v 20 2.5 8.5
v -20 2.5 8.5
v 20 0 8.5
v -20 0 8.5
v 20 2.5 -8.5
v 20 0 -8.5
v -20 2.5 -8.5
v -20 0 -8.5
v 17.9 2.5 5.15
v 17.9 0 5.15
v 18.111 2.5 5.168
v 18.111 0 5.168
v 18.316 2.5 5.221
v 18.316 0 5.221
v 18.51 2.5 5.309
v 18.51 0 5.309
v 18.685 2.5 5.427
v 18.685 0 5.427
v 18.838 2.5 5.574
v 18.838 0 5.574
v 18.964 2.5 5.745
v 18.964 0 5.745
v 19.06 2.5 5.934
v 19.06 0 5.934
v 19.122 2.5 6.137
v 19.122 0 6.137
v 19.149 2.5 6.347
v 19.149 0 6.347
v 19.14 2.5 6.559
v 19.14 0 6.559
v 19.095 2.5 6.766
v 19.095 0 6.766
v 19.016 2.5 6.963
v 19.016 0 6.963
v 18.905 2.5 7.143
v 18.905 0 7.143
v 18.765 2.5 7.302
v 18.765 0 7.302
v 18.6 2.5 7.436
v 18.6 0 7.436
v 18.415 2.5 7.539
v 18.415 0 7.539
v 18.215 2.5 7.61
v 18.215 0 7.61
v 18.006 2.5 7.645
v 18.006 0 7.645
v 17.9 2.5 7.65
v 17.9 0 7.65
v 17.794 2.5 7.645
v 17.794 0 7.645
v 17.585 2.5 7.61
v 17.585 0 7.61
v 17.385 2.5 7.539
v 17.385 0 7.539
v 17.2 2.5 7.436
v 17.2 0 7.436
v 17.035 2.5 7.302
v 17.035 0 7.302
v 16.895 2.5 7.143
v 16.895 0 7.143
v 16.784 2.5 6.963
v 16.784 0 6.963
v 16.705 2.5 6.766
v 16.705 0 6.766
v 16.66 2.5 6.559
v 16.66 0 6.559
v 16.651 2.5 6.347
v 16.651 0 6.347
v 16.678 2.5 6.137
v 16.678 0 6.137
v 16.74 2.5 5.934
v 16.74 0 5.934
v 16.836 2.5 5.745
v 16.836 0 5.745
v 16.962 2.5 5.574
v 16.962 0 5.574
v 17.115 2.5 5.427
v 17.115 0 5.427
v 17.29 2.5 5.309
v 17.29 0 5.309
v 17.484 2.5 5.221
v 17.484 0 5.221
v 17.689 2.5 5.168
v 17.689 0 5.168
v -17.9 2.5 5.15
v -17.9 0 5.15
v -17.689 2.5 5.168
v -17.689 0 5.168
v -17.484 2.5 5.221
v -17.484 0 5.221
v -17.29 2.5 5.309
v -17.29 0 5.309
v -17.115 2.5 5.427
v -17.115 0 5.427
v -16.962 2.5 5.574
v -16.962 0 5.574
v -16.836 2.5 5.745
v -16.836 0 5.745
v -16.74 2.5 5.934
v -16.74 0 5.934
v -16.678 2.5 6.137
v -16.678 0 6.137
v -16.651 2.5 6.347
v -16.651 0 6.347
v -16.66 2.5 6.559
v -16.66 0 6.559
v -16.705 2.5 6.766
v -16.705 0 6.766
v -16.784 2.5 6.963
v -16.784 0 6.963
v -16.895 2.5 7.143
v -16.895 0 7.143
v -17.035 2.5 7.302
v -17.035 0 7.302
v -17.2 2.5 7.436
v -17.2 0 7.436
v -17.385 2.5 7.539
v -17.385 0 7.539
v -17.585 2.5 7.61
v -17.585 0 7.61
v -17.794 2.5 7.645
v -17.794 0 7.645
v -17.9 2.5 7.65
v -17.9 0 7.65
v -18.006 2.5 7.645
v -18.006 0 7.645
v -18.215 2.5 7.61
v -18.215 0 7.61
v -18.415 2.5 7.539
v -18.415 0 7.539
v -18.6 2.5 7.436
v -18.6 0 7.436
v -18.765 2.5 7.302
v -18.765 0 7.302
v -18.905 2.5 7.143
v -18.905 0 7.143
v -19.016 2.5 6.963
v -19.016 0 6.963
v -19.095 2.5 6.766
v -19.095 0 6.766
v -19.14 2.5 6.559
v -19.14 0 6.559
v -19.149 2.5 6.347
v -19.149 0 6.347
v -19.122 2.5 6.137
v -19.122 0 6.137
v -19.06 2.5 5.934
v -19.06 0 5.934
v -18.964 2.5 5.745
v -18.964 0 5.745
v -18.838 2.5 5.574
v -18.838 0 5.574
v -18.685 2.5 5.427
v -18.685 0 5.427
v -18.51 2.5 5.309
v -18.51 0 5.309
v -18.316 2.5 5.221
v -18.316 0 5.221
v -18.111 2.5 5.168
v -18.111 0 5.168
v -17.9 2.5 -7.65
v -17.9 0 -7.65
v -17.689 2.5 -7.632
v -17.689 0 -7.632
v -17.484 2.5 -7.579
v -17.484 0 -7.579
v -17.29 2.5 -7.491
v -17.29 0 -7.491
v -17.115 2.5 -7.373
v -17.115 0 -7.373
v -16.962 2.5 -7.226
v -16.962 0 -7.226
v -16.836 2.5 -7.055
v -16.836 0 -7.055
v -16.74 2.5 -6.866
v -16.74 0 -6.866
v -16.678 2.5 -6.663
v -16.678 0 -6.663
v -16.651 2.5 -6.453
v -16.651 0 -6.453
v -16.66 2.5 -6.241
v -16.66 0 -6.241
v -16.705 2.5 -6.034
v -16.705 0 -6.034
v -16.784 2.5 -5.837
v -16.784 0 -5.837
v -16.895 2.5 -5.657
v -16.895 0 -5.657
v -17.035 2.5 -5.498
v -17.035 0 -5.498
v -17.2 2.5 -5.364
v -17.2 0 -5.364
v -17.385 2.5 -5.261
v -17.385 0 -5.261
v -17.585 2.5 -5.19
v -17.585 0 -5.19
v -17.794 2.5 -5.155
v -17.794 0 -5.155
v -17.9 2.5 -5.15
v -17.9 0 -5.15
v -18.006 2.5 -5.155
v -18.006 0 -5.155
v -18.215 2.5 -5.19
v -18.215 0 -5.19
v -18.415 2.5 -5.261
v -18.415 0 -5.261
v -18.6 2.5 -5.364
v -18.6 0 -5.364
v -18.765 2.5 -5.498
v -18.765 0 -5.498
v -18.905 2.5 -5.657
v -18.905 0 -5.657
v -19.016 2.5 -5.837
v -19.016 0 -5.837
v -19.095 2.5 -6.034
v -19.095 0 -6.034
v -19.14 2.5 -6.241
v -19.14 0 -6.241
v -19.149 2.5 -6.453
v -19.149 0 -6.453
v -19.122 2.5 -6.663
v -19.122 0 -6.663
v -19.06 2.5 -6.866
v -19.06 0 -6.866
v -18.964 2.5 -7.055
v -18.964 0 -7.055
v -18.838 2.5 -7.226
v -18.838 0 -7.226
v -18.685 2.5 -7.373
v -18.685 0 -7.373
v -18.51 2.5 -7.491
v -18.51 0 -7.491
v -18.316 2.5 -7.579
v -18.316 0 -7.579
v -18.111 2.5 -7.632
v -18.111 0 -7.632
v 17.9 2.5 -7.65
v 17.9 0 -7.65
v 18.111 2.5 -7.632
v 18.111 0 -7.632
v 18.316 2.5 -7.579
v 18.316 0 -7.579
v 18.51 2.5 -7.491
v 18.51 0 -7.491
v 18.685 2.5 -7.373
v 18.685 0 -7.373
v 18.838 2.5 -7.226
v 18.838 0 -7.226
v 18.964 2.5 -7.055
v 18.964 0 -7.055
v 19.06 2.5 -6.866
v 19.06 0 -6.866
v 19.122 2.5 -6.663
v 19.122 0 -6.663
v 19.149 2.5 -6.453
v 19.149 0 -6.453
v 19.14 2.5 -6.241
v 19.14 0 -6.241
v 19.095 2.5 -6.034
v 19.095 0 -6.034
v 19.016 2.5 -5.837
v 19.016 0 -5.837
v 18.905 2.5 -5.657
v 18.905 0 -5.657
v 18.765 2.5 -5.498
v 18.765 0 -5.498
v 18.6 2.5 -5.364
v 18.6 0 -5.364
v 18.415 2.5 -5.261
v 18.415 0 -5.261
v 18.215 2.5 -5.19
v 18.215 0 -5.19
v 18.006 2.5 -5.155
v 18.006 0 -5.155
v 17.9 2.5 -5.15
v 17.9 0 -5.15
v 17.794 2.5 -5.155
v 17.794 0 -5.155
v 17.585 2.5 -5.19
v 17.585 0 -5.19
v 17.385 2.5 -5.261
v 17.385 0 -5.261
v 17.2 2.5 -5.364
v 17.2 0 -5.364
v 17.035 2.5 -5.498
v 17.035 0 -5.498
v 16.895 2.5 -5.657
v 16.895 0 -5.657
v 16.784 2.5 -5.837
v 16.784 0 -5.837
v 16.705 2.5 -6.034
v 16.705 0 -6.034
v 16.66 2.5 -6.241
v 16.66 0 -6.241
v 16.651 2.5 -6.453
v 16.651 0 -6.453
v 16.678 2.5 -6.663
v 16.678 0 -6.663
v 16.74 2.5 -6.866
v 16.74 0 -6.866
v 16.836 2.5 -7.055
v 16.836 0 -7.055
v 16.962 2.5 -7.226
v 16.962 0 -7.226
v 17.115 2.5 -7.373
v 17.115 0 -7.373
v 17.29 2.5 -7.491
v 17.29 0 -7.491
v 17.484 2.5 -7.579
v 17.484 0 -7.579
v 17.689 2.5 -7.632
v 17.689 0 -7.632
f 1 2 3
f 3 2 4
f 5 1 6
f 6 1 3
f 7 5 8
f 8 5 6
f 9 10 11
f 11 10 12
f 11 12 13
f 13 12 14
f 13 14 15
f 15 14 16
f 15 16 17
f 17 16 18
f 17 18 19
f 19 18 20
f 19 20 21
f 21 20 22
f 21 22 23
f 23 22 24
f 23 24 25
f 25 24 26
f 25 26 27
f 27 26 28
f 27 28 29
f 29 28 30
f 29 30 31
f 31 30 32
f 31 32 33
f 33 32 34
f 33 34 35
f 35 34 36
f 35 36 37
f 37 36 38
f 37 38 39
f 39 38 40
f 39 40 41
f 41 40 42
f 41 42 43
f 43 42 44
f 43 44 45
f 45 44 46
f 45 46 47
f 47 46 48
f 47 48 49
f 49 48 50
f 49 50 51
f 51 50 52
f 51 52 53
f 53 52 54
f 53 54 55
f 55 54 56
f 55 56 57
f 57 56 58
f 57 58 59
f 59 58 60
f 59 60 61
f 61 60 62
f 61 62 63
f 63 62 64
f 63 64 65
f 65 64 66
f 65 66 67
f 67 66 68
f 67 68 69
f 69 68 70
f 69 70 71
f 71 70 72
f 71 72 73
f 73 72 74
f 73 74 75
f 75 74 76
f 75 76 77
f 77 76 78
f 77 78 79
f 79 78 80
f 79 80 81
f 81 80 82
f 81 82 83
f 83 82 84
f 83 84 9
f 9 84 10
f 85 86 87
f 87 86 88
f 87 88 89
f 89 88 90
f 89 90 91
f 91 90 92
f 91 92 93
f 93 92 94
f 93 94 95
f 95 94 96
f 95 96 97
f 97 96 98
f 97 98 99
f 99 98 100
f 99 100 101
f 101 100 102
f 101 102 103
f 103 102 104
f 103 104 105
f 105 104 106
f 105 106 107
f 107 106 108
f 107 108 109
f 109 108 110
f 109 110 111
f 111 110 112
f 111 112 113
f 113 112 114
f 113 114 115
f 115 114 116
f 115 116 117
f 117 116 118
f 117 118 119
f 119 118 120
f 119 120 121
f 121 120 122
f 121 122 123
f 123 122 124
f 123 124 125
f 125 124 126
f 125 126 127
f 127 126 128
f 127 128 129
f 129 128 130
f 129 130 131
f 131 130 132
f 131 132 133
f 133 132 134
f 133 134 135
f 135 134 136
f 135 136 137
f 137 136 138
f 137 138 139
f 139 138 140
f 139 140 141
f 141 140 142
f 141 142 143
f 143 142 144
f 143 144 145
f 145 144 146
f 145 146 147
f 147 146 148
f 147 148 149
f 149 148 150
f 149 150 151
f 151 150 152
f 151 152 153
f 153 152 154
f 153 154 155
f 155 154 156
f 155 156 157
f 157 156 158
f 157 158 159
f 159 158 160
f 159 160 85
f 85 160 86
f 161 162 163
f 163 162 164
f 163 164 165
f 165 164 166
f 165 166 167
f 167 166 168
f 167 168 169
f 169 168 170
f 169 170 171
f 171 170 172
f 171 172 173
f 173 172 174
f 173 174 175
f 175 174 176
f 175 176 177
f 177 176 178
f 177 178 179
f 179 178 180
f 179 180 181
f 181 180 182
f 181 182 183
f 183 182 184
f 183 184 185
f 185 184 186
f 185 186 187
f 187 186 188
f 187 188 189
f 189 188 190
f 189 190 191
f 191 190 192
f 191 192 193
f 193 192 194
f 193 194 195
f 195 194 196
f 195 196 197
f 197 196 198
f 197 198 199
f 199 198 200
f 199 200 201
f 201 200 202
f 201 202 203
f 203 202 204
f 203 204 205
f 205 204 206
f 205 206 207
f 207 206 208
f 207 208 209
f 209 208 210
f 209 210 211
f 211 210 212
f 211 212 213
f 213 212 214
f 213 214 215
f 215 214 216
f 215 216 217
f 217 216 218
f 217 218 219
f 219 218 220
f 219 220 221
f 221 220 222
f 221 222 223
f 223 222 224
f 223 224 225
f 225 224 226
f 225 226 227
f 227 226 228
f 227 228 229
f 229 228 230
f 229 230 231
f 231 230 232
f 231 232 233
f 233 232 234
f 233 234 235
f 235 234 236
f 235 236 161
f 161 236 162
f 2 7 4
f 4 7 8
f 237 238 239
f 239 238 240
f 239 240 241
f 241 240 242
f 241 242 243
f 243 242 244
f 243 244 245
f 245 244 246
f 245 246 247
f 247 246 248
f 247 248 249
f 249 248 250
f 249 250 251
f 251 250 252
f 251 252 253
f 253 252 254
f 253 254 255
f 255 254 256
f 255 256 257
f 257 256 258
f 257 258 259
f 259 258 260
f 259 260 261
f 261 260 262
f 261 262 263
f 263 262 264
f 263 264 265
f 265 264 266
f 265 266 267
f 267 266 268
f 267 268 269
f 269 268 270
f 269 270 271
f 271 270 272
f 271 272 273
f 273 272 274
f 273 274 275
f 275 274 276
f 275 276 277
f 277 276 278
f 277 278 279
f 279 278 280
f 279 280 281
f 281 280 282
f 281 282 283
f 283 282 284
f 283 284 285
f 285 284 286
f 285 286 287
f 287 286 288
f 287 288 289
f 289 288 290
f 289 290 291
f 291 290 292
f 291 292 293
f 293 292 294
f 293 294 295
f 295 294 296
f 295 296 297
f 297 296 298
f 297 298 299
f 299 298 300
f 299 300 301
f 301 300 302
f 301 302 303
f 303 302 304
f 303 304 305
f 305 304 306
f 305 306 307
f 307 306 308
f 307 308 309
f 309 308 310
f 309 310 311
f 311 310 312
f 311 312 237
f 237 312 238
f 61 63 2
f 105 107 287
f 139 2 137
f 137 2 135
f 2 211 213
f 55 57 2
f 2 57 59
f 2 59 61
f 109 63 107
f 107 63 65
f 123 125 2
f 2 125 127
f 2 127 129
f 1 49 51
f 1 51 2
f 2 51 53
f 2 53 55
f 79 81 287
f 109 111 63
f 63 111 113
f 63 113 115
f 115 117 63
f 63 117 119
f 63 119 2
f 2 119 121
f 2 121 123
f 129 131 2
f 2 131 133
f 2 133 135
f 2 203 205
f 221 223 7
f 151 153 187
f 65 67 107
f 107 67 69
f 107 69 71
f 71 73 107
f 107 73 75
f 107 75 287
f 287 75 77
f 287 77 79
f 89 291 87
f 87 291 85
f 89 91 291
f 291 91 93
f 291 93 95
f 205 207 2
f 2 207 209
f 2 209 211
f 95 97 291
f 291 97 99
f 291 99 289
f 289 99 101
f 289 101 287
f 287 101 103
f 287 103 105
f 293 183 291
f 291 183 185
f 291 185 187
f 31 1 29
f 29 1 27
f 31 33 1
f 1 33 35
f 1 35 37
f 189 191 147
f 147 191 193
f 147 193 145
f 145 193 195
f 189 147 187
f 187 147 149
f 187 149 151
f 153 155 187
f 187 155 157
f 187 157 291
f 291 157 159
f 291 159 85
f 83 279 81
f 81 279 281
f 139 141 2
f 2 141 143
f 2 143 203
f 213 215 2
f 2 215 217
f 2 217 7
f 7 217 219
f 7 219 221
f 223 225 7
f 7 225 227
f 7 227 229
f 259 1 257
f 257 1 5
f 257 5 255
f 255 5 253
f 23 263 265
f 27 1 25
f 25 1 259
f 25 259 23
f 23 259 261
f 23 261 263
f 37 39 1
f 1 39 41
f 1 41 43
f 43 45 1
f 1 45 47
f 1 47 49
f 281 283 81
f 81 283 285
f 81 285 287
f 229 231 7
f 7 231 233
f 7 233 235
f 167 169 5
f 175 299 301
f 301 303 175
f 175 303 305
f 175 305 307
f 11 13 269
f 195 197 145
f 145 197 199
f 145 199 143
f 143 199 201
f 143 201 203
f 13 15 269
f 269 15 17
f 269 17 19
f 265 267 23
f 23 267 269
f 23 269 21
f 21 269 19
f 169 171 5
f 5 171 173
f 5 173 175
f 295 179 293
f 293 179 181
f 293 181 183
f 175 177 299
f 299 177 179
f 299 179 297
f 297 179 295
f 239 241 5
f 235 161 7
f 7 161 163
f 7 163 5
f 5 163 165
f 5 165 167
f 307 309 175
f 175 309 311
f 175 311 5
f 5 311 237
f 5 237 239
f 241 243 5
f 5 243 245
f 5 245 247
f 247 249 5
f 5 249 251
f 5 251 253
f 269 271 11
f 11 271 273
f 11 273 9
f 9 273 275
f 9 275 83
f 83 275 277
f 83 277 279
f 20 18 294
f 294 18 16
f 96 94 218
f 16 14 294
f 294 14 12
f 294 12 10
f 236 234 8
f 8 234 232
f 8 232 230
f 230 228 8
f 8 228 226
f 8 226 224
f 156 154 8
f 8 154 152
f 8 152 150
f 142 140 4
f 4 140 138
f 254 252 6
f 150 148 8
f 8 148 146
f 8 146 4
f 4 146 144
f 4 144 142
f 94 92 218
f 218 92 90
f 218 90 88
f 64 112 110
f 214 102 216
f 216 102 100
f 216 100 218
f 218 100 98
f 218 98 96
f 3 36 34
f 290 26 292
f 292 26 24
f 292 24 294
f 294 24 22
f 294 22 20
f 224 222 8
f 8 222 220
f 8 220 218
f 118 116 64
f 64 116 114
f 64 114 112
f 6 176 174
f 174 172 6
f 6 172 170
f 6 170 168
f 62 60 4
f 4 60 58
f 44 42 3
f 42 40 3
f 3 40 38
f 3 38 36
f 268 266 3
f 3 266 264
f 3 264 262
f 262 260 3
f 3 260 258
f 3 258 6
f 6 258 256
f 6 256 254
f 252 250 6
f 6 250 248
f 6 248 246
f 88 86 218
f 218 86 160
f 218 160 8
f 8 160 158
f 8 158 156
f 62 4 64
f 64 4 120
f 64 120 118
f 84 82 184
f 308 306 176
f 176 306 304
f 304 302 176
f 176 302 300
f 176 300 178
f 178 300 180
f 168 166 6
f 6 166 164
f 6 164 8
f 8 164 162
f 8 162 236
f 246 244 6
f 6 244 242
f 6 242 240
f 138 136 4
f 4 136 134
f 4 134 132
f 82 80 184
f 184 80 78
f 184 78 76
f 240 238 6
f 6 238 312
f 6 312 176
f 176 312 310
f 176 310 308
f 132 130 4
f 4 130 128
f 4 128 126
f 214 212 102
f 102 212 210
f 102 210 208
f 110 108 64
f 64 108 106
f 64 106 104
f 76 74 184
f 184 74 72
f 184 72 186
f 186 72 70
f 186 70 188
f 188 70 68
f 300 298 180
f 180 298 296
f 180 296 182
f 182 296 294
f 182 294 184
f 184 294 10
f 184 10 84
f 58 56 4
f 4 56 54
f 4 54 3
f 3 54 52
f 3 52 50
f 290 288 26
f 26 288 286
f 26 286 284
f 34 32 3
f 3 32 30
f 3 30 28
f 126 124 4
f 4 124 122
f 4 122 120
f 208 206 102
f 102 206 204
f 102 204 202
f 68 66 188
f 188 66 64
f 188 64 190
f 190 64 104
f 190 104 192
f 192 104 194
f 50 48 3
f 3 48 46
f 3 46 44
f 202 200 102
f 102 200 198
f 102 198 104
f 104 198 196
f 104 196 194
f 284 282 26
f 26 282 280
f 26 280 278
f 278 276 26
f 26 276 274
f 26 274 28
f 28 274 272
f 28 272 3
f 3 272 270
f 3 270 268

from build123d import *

# Parameters (mm, degrees)
SKETCH1_W           = 4.2
SKETCH1_H           = 8.6
SKETCH1_H_2         = 4.2
SKETCH1_R           = 1.25
BOSS_EXTRUDE1_DEPTH = 2.5


with BuildPart() as part:
    # Sketch1 → Boss-Extrude1 (new body)
    # profile 1 of 7: a face of its own
    with BuildSketch(Plane(origin=(0, 0, 0), x_dir=(1, 0, 0), z_dir=(0, 1, 0))):
        Polygon((-15.8, 8.5), (-15.8, 4.3), (-15.8, -4.3), (-15.8, -8.5), (15.8, -8.5), (15.8, -4.3), (15.8, 4.3), (15.8, 8.5), align=None)
    # profile 2 of 7: a face of its own
    with BuildSketch(Plane(origin=(0, 0, 0), x_dir=(1, 0, 0), z_dir=(0, 1, 0))):
        with Locations((-17.9, 0)):
            Rectangle(SKETCH1_W, SKETCH1_H)
    # profile 3 of 7: a face of its own
    with BuildSketch(Plane(origin=(0, 0, 0), x_dir=(1, 0, 0), z_dir=(0, 1, 0))):
        with Locations((-17.9, -6.4)):
            Rectangle(SKETCH1_W, SKETCH1_H_2)
        with Locations(Location((-17.9, -6.4, 0), (0, 0, 270))):
            Circle(SKETCH1_R, mode=Mode.SUBTRACT)
    # profile 4 of 7: a face of its own
    with BuildSketch(Plane(origin=(0, 0, 0), x_dir=(1, 0, 0), z_dir=(0, 1, 0))):
        with Locations((17.9, 6.4)):
            Rectangle(SKETCH1_W, SKETCH1_H_2)
        with Locations(Location((17.9, 6.4, 0), (0, 0, 270))):
            Circle(SKETCH1_R, mode=Mode.SUBTRACT)
    # profile 5 of 7: a face of its own
    with BuildSketch(Plane(origin=(0, 0, 0), x_dir=(1, 0, 0), z_dir=(0, 1, 0))):
        with Locations((17.9, 0)):
            Rectangle(SKETCH1_W, SKETCH1_H)
    # profile 6 of 7: a face of its own
    with BuildSketch(Plane(origin=(0, 0, 0), x_dir=(1, 0, 0), z_dir=(0, 1, 0))):
        with Locations((17.9, -6.4)):
            Rectangle(SKETCH1_W, SKETCH1_H_2)
        with Locations(Location((17.9, -6.4, 0), (0, 0, 270))):
            Circle(SKETCH1_R, mode=Mode.SUBTRACT)
    # profile 7 of 7: a face of its own
    with BuildSketch(Plane(origin=(0, 0, 0), x_dir=(1, 0, 0), z_dir=(0, 1, 0))):
        with Locations((-17.9, 6.4)):
            Rectangle(SKETCH1_W, SKETCH1_H_2)
        with Locations(Location((-17.9, 6.4, 0), (0, 0, 270))):
            Circle(SKETCH1_R, mode=Mode.SUBTRACT)
    extrude(amount=BOSS_EXTRUDE1_DEPTH)


solid = part.part
